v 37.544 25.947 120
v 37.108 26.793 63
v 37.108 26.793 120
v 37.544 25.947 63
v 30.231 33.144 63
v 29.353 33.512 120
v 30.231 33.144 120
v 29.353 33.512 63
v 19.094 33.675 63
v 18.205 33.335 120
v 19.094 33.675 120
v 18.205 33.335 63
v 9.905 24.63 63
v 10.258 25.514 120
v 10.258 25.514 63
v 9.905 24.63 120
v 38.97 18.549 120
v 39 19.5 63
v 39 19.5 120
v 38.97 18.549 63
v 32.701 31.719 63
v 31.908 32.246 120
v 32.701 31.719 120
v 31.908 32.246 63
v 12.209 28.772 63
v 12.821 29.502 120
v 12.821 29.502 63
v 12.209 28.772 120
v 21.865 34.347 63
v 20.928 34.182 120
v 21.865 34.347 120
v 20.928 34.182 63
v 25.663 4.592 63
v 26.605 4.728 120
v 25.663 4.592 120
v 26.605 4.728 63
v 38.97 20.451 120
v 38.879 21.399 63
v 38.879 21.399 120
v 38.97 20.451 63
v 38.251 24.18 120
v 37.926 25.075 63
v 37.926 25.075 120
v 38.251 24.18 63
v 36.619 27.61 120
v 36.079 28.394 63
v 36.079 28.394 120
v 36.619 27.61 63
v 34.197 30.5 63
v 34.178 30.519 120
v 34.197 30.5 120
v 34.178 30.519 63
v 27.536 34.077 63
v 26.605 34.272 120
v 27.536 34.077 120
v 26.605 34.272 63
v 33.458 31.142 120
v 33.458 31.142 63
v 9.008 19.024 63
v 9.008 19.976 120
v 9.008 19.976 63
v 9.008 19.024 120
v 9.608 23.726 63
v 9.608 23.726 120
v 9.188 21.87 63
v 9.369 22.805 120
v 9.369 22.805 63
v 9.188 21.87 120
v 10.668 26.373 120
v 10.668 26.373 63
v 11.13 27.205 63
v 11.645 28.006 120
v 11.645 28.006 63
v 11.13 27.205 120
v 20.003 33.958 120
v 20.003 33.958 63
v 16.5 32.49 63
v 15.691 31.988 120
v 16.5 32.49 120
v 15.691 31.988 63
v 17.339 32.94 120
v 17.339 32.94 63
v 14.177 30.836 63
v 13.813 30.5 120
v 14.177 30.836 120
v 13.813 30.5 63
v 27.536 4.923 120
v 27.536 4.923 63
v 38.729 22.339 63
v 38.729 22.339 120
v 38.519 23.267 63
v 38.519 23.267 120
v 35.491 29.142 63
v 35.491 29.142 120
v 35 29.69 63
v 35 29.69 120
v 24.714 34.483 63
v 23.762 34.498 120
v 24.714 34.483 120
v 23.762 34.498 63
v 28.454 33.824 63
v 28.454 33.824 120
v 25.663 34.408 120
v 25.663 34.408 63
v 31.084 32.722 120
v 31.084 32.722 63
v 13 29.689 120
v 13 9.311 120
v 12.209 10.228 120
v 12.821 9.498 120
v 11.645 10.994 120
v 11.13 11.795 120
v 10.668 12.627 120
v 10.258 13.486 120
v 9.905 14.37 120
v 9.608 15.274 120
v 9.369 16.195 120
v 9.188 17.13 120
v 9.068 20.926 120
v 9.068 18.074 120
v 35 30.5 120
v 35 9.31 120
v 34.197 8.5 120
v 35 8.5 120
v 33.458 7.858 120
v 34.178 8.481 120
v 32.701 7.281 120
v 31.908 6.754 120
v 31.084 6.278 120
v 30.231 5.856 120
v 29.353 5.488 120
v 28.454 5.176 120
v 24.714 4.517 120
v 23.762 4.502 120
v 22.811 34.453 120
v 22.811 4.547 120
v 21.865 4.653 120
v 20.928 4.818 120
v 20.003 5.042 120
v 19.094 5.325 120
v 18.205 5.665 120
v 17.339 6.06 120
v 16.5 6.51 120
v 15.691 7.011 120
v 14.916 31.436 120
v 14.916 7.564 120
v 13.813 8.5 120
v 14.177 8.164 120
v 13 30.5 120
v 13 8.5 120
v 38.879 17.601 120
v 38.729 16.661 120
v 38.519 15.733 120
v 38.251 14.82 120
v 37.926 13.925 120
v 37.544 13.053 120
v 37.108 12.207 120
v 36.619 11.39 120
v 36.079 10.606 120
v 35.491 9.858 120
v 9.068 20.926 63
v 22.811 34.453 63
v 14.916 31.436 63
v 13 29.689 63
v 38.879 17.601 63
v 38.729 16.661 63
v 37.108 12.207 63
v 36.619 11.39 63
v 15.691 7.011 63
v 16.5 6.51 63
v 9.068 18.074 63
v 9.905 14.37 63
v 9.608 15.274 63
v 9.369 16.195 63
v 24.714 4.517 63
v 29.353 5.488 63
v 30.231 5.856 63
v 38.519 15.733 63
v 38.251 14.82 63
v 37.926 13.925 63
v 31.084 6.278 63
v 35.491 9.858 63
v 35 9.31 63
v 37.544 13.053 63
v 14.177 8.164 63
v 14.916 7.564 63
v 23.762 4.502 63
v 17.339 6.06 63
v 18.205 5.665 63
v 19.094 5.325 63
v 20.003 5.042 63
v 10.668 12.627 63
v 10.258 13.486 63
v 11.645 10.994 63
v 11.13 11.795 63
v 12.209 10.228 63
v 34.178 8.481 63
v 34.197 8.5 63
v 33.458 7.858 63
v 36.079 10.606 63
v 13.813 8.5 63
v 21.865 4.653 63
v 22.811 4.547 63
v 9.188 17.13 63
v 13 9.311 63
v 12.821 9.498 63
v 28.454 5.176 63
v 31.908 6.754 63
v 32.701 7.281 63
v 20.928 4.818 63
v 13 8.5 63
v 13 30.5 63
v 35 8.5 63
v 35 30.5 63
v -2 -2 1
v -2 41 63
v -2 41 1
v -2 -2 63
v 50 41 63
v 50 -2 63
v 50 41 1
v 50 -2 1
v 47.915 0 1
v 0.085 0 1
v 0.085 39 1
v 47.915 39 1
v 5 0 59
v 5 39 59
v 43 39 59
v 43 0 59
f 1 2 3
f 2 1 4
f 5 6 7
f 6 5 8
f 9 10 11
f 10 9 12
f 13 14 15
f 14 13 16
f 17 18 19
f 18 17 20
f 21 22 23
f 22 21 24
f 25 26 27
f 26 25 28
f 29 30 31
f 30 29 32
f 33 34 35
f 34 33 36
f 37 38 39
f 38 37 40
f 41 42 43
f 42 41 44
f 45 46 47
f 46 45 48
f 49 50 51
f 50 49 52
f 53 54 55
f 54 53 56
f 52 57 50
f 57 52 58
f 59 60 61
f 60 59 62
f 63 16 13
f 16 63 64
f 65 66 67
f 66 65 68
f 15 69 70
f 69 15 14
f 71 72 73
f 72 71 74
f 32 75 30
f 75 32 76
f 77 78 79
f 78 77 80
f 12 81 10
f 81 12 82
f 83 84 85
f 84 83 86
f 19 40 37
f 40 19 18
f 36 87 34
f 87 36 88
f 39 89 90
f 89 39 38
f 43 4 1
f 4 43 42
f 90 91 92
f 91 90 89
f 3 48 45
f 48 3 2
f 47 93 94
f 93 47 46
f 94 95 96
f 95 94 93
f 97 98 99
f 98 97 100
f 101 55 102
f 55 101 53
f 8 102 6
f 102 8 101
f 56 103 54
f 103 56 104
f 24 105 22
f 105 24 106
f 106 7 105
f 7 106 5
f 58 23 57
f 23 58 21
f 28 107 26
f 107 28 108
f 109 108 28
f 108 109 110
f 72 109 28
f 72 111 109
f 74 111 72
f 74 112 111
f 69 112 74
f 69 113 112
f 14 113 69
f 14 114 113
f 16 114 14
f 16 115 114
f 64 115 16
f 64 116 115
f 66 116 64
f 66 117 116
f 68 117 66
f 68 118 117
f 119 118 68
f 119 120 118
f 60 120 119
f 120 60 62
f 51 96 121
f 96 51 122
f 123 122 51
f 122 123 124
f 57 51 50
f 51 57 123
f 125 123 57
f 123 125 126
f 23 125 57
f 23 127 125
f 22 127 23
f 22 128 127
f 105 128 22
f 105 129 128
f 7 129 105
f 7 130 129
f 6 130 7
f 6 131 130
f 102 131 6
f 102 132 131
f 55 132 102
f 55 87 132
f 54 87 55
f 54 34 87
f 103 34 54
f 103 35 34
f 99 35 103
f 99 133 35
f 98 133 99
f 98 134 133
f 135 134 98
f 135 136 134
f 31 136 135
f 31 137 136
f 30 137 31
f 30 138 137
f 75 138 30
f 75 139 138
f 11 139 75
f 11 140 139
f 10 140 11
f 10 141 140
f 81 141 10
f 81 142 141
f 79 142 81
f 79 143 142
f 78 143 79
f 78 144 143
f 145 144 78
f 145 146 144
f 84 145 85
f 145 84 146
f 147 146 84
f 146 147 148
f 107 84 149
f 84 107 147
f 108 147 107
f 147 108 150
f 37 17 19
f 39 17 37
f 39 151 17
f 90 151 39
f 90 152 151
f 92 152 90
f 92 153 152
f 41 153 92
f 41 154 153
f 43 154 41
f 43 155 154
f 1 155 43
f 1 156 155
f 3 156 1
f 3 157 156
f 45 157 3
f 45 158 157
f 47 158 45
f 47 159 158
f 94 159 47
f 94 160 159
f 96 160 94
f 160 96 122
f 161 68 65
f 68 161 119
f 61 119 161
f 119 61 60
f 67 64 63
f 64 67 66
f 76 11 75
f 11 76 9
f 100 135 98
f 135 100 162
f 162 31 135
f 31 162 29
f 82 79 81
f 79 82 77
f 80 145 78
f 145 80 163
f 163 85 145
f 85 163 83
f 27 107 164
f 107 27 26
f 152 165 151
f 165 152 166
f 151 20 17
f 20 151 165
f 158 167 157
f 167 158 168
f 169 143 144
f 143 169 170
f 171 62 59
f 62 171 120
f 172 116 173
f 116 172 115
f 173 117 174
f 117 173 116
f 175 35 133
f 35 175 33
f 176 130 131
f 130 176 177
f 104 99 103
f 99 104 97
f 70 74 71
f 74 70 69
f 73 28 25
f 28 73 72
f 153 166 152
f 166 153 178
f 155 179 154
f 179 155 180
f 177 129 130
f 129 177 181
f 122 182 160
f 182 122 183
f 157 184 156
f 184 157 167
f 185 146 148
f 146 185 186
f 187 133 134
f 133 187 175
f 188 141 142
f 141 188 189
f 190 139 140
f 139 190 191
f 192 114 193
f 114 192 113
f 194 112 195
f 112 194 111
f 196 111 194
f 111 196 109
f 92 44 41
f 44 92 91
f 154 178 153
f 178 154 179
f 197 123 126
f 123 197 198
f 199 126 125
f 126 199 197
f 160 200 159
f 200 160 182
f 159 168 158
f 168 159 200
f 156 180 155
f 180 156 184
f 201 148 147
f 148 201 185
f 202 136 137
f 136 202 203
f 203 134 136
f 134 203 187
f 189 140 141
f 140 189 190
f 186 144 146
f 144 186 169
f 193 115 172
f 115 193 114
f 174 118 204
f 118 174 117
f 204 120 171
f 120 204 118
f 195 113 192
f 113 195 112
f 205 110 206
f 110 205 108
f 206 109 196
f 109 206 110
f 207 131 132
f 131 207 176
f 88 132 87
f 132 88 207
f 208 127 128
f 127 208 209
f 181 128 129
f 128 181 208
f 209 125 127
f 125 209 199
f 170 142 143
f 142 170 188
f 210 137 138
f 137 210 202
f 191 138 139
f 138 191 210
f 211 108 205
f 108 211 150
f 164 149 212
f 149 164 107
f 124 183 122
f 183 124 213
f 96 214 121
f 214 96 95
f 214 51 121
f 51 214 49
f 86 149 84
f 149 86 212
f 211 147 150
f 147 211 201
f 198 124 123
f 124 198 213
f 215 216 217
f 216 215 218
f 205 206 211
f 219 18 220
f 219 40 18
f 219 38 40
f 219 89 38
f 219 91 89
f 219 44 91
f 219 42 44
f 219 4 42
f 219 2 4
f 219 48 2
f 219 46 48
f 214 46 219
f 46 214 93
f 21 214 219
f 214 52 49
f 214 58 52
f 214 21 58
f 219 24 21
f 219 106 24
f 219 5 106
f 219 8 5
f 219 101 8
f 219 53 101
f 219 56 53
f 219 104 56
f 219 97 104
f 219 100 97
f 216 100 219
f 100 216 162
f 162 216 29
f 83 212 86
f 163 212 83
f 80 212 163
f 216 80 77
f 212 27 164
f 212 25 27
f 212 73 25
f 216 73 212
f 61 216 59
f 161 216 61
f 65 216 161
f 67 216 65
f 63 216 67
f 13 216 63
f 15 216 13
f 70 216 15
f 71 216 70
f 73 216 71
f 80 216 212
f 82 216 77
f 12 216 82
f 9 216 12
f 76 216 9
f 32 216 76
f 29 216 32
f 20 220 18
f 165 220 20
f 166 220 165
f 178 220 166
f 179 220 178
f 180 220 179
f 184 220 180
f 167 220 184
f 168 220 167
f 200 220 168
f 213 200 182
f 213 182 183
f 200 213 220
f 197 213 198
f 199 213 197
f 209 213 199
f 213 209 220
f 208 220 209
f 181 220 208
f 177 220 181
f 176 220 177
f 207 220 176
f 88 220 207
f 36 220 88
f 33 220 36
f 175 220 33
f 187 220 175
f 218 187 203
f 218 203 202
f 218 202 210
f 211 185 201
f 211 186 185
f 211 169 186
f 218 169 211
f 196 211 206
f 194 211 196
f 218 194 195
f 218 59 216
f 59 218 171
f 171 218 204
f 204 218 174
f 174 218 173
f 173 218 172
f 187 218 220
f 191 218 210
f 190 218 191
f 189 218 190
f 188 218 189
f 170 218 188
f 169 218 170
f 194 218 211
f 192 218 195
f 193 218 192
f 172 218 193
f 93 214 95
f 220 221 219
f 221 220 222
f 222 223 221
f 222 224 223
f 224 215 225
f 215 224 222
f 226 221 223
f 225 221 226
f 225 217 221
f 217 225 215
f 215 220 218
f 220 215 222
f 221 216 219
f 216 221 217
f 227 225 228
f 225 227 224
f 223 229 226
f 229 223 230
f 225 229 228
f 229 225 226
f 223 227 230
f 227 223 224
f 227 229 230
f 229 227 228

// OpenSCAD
$fn = 99;
postSize = 22;
postHeight = 60;

width = 39;
union(){
difference() {
  translate([-2,-2,1]) { cube([52,width + 4,62]);    }
  cup(offset=5, w=width);
}
translate([24,width/2,60]){
#post();
}
}


module cup(offset, w) {
CubePoints = [
  [  0,  0,  0 ],  //0
  [ 48,  0,  0 ],  //1
  [ 48,  w,  0 ],  //2
  [  0,  w,  0 ],  //3
  [  offset,  0,  59 ],  //4
  [ 48-offset,  0, 59],  //5
  [ 48-offset,  w,  59],  //6
  [  offset,  w,  59 ]]; //7
  
CubeFaces = [
  [0,1,2,3],  // bottom
  [4,5,1,0],  // front
  [7,6,5,4],  // top
  [5,6,2,1],  // right
  [6,7,3,2],  // back
  [7,4,0,3]]; // left
  
polyhedron( CubePoints, CubeFaces );
}

module post() {
union() {
    cylinder(h = postHeight,d = 30,center = false);
    translate([postSize/-2,postSize/-2,0]) {
    cube([postSize,postSize,postHeight]);
    }
   // cylinder(h = 20,d = 5,center = false);
}
}
